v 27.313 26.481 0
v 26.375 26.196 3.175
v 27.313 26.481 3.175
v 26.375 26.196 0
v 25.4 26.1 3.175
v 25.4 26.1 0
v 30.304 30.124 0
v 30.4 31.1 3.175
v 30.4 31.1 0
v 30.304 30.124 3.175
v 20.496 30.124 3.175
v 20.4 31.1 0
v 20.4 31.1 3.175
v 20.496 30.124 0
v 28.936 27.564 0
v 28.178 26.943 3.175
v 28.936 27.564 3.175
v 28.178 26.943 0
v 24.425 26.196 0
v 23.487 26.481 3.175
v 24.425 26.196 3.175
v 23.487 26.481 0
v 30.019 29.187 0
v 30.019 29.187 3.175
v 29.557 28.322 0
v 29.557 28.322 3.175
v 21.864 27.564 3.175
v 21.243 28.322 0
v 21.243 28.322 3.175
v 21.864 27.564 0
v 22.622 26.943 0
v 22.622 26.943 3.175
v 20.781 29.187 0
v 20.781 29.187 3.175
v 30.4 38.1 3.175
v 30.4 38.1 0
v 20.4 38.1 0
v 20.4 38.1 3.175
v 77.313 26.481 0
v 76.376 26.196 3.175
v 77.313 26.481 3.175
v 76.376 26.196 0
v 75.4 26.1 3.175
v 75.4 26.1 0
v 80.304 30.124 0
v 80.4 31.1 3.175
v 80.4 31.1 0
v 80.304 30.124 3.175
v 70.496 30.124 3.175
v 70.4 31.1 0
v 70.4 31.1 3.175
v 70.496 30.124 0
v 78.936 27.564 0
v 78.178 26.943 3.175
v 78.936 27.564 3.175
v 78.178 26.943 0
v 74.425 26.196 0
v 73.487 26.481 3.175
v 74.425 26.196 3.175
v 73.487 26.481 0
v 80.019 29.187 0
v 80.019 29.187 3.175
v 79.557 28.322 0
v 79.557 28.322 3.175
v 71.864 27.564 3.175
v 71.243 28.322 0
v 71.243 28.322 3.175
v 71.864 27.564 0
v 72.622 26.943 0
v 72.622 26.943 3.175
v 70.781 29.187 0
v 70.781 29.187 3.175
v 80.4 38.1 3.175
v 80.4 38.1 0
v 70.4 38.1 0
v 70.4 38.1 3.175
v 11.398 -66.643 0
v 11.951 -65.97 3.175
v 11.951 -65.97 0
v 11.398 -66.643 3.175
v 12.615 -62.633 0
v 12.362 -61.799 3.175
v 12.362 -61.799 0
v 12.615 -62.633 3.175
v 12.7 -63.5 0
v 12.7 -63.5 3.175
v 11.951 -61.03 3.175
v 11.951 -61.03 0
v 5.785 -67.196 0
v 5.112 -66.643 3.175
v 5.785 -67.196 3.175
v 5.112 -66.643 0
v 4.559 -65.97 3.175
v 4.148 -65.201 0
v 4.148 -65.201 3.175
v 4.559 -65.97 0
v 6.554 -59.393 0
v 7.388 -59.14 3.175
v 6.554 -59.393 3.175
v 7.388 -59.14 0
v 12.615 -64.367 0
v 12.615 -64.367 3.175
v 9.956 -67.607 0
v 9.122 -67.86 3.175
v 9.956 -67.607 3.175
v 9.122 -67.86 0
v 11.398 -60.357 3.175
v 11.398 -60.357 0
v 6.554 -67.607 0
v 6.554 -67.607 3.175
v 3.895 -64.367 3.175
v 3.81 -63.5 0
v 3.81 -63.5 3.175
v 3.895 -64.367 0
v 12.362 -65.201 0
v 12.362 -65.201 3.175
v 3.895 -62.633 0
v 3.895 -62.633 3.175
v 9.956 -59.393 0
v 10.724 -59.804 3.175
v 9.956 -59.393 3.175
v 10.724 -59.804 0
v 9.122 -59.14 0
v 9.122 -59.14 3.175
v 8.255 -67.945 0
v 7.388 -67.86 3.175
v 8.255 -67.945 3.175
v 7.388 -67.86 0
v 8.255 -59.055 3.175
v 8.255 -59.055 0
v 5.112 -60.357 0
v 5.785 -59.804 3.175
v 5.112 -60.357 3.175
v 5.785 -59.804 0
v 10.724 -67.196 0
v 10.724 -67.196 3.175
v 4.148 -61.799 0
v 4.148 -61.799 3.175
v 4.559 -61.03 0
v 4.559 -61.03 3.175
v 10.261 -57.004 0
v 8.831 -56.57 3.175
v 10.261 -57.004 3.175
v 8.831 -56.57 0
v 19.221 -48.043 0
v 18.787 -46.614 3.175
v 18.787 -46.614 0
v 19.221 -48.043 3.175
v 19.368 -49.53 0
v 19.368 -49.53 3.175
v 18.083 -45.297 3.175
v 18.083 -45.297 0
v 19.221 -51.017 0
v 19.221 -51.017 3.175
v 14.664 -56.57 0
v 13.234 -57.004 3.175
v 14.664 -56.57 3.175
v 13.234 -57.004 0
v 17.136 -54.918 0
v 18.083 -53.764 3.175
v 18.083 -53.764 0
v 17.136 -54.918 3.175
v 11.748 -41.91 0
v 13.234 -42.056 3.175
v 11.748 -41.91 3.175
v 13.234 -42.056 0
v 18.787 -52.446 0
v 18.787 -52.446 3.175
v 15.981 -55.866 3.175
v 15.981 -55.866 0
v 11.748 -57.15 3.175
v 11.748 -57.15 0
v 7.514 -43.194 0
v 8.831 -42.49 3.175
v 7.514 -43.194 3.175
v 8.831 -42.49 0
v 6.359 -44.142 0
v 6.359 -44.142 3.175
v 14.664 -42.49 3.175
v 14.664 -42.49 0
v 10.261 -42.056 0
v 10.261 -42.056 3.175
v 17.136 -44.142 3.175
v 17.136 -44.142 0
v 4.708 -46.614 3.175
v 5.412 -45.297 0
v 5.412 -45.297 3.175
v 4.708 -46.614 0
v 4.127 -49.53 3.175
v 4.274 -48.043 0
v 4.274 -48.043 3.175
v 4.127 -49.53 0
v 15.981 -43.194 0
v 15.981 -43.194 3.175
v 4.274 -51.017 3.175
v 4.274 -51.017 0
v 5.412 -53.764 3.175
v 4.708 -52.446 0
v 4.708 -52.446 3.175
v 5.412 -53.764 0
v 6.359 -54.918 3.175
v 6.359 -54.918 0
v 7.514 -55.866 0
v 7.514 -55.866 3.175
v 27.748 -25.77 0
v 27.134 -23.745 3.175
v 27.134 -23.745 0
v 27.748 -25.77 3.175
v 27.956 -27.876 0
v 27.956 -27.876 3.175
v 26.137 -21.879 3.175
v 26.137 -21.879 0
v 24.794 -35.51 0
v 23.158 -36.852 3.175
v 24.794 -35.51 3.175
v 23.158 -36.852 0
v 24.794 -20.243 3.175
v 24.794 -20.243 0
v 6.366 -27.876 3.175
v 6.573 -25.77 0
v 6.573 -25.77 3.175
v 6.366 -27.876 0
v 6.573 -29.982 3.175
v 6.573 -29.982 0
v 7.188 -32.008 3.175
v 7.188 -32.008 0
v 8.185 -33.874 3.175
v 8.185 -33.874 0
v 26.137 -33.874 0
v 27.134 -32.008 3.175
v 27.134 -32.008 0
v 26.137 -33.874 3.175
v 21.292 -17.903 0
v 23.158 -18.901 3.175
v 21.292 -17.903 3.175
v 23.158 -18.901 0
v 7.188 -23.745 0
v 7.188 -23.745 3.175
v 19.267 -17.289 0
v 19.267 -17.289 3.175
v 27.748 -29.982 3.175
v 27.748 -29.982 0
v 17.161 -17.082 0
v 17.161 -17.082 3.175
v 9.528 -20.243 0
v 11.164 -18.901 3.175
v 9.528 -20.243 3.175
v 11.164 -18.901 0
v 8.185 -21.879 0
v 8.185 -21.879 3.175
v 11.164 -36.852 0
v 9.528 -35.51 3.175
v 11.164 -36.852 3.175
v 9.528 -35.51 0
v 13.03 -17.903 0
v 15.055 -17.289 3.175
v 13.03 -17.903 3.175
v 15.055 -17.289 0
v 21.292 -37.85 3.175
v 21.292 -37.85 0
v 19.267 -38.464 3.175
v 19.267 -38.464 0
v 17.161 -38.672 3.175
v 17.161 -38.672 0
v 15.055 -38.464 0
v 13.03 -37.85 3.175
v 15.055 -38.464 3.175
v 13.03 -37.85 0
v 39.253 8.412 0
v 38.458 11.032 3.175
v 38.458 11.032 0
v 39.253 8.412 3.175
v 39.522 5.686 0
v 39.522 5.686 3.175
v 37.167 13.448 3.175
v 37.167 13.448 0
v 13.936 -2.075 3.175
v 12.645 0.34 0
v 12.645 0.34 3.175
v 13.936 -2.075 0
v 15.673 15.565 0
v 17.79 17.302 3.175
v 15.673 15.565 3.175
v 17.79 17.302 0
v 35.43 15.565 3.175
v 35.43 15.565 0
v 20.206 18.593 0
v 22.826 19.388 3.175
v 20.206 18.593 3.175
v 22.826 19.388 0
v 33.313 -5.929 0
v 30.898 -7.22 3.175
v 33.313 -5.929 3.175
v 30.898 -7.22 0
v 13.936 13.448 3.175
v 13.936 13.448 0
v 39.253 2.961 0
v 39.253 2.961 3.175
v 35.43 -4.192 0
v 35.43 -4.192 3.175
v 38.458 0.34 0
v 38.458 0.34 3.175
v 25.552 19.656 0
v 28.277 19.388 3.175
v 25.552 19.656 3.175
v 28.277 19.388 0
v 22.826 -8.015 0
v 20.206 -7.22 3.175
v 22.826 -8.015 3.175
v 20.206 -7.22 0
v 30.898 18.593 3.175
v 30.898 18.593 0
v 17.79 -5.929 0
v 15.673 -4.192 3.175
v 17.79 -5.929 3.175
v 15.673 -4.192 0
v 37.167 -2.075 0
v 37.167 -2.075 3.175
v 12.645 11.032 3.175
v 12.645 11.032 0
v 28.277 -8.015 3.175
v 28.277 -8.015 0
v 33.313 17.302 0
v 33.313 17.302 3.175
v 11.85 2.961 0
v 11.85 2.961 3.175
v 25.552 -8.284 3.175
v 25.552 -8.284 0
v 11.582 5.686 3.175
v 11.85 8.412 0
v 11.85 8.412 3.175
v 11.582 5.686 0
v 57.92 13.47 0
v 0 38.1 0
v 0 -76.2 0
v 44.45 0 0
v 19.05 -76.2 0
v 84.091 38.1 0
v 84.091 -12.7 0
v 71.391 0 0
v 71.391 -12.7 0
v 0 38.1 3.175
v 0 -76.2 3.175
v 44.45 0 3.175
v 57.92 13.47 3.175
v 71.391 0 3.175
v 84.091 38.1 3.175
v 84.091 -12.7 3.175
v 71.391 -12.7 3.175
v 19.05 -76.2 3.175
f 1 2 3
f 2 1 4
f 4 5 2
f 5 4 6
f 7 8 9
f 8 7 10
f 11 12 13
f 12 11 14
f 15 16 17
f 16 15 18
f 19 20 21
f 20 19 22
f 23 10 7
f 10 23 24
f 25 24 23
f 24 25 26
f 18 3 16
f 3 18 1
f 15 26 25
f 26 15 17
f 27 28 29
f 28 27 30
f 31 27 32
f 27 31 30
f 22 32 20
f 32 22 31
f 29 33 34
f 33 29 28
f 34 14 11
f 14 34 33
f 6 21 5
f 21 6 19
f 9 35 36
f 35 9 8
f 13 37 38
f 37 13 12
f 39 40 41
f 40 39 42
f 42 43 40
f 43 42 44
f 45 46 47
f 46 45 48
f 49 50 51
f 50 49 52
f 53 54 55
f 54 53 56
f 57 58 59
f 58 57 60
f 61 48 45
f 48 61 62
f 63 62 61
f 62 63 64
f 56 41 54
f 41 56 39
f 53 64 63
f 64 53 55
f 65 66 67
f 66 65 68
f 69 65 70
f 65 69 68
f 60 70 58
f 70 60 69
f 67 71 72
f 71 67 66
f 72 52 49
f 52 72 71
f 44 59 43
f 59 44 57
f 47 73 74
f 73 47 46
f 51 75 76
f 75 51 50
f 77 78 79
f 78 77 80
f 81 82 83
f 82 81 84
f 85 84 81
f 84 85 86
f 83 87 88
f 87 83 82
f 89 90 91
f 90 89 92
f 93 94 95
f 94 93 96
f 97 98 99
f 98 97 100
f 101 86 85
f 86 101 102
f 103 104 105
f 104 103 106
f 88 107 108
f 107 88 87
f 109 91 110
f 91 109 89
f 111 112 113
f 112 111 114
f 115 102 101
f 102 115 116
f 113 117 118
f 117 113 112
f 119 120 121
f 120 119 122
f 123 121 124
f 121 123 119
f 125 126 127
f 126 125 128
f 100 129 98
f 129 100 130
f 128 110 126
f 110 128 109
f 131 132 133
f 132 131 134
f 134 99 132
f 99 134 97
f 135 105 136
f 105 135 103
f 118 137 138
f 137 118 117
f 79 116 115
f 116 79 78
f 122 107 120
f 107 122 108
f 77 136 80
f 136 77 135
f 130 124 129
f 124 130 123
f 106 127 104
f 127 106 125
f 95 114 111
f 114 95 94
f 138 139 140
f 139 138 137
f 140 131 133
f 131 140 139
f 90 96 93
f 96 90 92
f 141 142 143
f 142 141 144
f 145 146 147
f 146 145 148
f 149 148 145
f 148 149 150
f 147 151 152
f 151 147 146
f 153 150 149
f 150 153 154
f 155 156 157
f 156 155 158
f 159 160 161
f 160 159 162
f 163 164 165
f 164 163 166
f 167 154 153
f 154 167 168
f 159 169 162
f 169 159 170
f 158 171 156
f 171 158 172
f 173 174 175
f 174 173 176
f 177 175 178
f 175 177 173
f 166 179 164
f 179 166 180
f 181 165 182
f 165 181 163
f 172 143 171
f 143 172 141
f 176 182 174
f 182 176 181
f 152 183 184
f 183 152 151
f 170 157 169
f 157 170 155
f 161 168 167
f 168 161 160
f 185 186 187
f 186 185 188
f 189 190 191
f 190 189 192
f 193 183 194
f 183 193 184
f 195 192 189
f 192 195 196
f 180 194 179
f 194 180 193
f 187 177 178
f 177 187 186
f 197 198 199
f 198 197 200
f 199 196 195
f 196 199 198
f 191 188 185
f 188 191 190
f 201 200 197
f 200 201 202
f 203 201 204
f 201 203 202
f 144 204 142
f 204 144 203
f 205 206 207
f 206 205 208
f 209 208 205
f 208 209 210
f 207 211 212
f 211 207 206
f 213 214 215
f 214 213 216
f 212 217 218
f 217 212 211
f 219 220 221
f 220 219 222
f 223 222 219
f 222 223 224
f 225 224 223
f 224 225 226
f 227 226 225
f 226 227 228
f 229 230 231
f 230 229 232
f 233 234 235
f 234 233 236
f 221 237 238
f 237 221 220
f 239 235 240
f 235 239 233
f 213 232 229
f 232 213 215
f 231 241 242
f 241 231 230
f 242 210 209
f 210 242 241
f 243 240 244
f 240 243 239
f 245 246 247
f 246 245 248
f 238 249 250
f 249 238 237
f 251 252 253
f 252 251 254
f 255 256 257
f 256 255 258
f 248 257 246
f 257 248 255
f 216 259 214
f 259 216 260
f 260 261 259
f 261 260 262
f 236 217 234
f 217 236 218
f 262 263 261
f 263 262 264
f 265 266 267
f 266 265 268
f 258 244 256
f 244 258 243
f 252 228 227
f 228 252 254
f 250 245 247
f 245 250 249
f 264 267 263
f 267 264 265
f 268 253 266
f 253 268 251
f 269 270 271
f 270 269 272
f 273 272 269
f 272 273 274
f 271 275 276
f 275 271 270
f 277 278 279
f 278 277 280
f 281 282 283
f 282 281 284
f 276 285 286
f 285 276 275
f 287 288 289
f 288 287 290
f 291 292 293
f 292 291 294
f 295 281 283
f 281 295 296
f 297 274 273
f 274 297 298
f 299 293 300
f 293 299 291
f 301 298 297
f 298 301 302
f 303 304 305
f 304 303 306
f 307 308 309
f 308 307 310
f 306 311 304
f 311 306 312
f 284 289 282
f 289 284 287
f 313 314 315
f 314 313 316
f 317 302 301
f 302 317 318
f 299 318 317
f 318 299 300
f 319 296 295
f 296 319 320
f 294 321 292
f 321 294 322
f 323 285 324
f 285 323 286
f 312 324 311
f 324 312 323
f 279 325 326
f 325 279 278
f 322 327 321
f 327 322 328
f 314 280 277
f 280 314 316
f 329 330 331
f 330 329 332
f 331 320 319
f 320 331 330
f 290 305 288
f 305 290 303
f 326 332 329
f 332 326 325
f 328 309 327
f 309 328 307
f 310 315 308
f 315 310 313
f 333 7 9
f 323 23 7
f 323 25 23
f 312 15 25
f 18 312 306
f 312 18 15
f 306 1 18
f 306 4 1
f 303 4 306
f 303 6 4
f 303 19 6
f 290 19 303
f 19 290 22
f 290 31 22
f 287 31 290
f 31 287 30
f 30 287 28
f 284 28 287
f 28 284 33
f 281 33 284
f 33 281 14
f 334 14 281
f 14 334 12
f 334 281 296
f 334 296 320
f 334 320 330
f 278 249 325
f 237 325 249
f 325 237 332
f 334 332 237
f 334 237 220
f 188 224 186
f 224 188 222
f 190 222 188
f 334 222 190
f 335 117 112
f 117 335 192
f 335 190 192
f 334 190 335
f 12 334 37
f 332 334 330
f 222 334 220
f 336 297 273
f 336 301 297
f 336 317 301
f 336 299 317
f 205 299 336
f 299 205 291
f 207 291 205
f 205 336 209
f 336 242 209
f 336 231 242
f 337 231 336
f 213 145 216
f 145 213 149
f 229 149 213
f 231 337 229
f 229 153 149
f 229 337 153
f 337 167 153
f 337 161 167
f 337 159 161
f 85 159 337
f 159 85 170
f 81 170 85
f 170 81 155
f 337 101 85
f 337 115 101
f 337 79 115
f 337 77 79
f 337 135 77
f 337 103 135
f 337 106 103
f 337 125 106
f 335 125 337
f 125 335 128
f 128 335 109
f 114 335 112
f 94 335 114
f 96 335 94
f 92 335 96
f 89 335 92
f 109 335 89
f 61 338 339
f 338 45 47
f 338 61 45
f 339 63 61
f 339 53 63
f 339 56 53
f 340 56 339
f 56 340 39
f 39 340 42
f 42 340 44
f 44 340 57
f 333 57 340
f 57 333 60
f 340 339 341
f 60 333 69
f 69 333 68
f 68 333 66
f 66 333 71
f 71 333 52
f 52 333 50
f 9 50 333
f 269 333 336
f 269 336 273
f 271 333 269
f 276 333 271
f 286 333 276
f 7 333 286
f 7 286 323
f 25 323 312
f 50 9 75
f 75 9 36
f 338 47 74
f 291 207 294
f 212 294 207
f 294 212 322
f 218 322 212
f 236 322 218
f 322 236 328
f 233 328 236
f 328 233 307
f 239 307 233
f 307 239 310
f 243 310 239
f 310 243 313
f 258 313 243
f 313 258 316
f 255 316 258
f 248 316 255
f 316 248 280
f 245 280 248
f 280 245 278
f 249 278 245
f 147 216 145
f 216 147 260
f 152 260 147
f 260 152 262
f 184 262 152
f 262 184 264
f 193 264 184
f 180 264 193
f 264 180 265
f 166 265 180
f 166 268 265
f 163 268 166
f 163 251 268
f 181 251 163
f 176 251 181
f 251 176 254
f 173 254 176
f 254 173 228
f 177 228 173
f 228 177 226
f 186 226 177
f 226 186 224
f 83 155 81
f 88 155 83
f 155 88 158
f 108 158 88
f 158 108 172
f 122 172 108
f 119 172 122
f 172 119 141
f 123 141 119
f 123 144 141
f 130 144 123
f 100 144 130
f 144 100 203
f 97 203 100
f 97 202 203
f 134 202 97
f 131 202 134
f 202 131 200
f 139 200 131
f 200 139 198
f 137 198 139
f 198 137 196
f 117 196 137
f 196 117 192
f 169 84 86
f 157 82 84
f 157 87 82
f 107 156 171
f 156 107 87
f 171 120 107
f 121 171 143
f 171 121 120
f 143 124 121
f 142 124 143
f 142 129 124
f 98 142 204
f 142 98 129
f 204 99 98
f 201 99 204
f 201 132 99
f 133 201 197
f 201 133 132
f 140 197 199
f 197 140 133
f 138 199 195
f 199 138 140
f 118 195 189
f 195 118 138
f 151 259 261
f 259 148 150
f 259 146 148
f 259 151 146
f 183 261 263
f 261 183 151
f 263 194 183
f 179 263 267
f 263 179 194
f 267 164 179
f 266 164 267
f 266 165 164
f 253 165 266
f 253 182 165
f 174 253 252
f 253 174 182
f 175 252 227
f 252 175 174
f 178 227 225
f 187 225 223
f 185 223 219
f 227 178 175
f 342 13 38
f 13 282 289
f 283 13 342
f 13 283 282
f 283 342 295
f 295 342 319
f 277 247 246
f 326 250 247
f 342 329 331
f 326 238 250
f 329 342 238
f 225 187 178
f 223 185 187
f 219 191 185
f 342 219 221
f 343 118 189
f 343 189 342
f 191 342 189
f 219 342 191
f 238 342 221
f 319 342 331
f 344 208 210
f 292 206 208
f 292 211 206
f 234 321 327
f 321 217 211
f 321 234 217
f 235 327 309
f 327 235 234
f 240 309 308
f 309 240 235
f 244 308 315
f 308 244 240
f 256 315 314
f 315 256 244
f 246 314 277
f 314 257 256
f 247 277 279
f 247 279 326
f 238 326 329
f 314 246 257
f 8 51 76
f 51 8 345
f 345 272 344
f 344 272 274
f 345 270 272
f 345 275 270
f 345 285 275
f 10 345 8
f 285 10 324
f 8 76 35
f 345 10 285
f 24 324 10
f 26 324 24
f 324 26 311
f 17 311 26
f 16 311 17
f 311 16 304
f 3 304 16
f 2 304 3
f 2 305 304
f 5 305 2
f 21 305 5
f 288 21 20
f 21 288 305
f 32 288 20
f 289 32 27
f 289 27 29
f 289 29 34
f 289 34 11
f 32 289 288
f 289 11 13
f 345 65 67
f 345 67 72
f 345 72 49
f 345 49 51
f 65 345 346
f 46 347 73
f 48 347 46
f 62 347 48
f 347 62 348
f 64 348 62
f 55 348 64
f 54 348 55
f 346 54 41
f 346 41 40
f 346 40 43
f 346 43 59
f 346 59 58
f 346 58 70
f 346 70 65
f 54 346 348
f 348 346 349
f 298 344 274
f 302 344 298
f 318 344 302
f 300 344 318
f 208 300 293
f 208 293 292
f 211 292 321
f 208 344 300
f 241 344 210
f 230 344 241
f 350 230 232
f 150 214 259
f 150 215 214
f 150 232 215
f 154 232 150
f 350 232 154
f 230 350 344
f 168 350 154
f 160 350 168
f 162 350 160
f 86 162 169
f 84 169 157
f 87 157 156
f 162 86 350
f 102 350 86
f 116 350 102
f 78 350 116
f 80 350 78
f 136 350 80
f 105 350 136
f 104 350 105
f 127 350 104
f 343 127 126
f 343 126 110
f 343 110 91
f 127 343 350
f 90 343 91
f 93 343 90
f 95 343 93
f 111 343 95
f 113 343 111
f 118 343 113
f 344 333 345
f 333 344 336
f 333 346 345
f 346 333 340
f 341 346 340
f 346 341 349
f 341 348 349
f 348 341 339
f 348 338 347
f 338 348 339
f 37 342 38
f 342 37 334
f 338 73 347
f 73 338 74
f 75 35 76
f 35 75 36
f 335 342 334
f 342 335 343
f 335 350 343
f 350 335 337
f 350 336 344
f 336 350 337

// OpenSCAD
//
// Support bracket for soap dish on towel rack
// towel bar is 3/4 in square, rotated 45 degrees
// closest point is 1-3/4 in from wall
//
// Built a few 6/3/21, all OK
//

function mm(i) = (i*25.4);
function inch(m) = (m/25.4);

bar_size = 0.75;
bar_distance = 1.75;
bar_diag = sqrt( (0.75*0.75)/2);

bracket_thickness = 0.125;	/* 1/8 inch */

// draw the bar and wall for reference
// origin is on the wall in the center of the bar
wall_size = 24;			/* arbitrary wall size */
wall_thick = 0.5;

module wall() {
     translate( [-wall_size/2, -wall_size/2, -wall_thick])
	  %cube( [wall_size, wall_size, wall_thick]);
}

// draw towel bar
bar_len = 17;
module bar() {
     translate( [-bar_len/2, 0, bar_distance])
	  rotate( [45, 0, 0])
	  %cube( [bar_len, bar_size, bar_size]);
}

// bracket
bracket_overhang = 0.5;		// bracket overhang beyond bar
bracket_height = 3.0;		// bracket height
bracket_top = 1.5;
bracket_foot = 0.75;

bracket_width = bar_distance+bar_diag*2+bracket_overhang;
echo( "width=", bracket_width);

// draw a flat floor plan for the bracket
module bracket_plan() {
polygon( points = [ [0,0], [bracket_foot,0],
		   [bar_distance, bracket_height],
		   [bar_distance+bar_diag, bracket_height+bar_diag],
		   [bar_distance+bar_diag*2, bracket_height],
		   [bar_distance+bar_diag*2, bracket_height-0.5],
		   [bracket_width, bracket_height-0.5],
		   [bracket_width, bracket_height+bracket_top],
		   [0, bracket_height+bracket_top],
//		   [bar_distance-bracket_foot, bracket_height+bracket_top],
		   [0,0] ] );
}

peg_diam=inch(10);

$fn = 32;

module peg_hole() {
     translate( [ 0, 0, -0.1]) {
	  cylinder( h=bracket_thickness+0.3, d=peg_diam);
	  translate( [-peg_diam/2, 0, 0])
	  cube( [peg_diam, 2, bracket_thickness+0.3]);
     }
}

module open_hole(dia) {
     translate( [ 0, 0, -0.1]) {
	  cylinder( h=bracket_thickness+0.3, d=dia);
     }
}


module hole_at( x, y, dia) {
     translate( [ x, y, -0.1]) {
	  cylinder( h=bracket_thickness+0.3, d=dia);
     }
}

module hole_array( x0, y0, dx, dy, nx, ny, dia) {
     for( ix=[0:nx-1]) for( iy=[0:ny-1]) hole_at( x0+dx*ix, y0+dy*iy, dia);
}



module bracket() {
     translate( [0, -(bracket_height), 0]) rotate([ 0, 270, 0]) {
	  difference() {
	       linear_extrude( height=bracket_thickness) { bracket_plan(); };
	       translate( [ 1, bracket_height+bracket_top-inch(7), 0]) {
		    peg_hole();
		    translate( [ inch(50), 0, 0])
			 peg_hole();
	       }

//	       hole_array( 0.2, 0.25, 0.4, 0.4, 2, 12, 0.3);
//	       hole_array( 0.95, 0.85, 0.4, 0.4, 1, 8, 0.3);
//	       hole_array( 1.35, 1.55, 0.4, 0.4, 1, 7, 0.3);
//	       hole_array( 1.75, 2.2, 0.4, 0.4, 1, 5, 0.3);
//	       hole_array( 2.15, 2.9, 0.4, 0.4, 1, 4, 0.3);
//	       hole_array( 2.55, 3.5, 0.4, 0.4, 1, 2, 0.3);
//
//	       hole_array( 3.4, 3.6, 0.4, 0.4, 1, 2, 0.3);
//	       hole_array( 3.8, 2.9, 0.4, 0.4, 1, 4, 0.3);


	       for( i = [0:3]) {
		    dia = 0.35 + 0.25*i;
		    dist =  pow(1.55,i);
		    translate( [bracket_foot/2-0.3 + dist/4,
				dist-0.5])
			 open_hole(dia);
	       }


//	       hole_at( 0.2, 0.2, 0.2);
//	       hole_at ( 0.6, 0.2, 0.25);
//	       hole_at( 0.2, 0.77, 0.2);
//	       hole_at( 0.8, 0.55, 0.3);
//	       hole_at( 1.1, 1, 0.27);
//	       hole_at( 0.25, 1.5, 0.35);
//	       hole_at( 1, 1.3, 0.2);
//	       hole_at( 1.3, 1.4, 0.3);
//	       hole_at( 0.15, 1.05, 0.2);
//	       hole_at( 0.23, 1.95, 0.3);
//	       for( i=[0:4] ) hole_at( 0.25, 2.4+i*0.45, 0.35);
//	       for( i=[0:6] ) hole_at( 0.57, 2.4+i*0.3, 0.2);
//	       for( i=[0:7] ) hole_at( 1.45+i*0.16, 1.7+i*0.32, 0.25);
	  }
     }
}

// wall();
// bar();
rotate( [0, 90, 0])
scale( [25.4, 25.4, 25.4])
bracket();
